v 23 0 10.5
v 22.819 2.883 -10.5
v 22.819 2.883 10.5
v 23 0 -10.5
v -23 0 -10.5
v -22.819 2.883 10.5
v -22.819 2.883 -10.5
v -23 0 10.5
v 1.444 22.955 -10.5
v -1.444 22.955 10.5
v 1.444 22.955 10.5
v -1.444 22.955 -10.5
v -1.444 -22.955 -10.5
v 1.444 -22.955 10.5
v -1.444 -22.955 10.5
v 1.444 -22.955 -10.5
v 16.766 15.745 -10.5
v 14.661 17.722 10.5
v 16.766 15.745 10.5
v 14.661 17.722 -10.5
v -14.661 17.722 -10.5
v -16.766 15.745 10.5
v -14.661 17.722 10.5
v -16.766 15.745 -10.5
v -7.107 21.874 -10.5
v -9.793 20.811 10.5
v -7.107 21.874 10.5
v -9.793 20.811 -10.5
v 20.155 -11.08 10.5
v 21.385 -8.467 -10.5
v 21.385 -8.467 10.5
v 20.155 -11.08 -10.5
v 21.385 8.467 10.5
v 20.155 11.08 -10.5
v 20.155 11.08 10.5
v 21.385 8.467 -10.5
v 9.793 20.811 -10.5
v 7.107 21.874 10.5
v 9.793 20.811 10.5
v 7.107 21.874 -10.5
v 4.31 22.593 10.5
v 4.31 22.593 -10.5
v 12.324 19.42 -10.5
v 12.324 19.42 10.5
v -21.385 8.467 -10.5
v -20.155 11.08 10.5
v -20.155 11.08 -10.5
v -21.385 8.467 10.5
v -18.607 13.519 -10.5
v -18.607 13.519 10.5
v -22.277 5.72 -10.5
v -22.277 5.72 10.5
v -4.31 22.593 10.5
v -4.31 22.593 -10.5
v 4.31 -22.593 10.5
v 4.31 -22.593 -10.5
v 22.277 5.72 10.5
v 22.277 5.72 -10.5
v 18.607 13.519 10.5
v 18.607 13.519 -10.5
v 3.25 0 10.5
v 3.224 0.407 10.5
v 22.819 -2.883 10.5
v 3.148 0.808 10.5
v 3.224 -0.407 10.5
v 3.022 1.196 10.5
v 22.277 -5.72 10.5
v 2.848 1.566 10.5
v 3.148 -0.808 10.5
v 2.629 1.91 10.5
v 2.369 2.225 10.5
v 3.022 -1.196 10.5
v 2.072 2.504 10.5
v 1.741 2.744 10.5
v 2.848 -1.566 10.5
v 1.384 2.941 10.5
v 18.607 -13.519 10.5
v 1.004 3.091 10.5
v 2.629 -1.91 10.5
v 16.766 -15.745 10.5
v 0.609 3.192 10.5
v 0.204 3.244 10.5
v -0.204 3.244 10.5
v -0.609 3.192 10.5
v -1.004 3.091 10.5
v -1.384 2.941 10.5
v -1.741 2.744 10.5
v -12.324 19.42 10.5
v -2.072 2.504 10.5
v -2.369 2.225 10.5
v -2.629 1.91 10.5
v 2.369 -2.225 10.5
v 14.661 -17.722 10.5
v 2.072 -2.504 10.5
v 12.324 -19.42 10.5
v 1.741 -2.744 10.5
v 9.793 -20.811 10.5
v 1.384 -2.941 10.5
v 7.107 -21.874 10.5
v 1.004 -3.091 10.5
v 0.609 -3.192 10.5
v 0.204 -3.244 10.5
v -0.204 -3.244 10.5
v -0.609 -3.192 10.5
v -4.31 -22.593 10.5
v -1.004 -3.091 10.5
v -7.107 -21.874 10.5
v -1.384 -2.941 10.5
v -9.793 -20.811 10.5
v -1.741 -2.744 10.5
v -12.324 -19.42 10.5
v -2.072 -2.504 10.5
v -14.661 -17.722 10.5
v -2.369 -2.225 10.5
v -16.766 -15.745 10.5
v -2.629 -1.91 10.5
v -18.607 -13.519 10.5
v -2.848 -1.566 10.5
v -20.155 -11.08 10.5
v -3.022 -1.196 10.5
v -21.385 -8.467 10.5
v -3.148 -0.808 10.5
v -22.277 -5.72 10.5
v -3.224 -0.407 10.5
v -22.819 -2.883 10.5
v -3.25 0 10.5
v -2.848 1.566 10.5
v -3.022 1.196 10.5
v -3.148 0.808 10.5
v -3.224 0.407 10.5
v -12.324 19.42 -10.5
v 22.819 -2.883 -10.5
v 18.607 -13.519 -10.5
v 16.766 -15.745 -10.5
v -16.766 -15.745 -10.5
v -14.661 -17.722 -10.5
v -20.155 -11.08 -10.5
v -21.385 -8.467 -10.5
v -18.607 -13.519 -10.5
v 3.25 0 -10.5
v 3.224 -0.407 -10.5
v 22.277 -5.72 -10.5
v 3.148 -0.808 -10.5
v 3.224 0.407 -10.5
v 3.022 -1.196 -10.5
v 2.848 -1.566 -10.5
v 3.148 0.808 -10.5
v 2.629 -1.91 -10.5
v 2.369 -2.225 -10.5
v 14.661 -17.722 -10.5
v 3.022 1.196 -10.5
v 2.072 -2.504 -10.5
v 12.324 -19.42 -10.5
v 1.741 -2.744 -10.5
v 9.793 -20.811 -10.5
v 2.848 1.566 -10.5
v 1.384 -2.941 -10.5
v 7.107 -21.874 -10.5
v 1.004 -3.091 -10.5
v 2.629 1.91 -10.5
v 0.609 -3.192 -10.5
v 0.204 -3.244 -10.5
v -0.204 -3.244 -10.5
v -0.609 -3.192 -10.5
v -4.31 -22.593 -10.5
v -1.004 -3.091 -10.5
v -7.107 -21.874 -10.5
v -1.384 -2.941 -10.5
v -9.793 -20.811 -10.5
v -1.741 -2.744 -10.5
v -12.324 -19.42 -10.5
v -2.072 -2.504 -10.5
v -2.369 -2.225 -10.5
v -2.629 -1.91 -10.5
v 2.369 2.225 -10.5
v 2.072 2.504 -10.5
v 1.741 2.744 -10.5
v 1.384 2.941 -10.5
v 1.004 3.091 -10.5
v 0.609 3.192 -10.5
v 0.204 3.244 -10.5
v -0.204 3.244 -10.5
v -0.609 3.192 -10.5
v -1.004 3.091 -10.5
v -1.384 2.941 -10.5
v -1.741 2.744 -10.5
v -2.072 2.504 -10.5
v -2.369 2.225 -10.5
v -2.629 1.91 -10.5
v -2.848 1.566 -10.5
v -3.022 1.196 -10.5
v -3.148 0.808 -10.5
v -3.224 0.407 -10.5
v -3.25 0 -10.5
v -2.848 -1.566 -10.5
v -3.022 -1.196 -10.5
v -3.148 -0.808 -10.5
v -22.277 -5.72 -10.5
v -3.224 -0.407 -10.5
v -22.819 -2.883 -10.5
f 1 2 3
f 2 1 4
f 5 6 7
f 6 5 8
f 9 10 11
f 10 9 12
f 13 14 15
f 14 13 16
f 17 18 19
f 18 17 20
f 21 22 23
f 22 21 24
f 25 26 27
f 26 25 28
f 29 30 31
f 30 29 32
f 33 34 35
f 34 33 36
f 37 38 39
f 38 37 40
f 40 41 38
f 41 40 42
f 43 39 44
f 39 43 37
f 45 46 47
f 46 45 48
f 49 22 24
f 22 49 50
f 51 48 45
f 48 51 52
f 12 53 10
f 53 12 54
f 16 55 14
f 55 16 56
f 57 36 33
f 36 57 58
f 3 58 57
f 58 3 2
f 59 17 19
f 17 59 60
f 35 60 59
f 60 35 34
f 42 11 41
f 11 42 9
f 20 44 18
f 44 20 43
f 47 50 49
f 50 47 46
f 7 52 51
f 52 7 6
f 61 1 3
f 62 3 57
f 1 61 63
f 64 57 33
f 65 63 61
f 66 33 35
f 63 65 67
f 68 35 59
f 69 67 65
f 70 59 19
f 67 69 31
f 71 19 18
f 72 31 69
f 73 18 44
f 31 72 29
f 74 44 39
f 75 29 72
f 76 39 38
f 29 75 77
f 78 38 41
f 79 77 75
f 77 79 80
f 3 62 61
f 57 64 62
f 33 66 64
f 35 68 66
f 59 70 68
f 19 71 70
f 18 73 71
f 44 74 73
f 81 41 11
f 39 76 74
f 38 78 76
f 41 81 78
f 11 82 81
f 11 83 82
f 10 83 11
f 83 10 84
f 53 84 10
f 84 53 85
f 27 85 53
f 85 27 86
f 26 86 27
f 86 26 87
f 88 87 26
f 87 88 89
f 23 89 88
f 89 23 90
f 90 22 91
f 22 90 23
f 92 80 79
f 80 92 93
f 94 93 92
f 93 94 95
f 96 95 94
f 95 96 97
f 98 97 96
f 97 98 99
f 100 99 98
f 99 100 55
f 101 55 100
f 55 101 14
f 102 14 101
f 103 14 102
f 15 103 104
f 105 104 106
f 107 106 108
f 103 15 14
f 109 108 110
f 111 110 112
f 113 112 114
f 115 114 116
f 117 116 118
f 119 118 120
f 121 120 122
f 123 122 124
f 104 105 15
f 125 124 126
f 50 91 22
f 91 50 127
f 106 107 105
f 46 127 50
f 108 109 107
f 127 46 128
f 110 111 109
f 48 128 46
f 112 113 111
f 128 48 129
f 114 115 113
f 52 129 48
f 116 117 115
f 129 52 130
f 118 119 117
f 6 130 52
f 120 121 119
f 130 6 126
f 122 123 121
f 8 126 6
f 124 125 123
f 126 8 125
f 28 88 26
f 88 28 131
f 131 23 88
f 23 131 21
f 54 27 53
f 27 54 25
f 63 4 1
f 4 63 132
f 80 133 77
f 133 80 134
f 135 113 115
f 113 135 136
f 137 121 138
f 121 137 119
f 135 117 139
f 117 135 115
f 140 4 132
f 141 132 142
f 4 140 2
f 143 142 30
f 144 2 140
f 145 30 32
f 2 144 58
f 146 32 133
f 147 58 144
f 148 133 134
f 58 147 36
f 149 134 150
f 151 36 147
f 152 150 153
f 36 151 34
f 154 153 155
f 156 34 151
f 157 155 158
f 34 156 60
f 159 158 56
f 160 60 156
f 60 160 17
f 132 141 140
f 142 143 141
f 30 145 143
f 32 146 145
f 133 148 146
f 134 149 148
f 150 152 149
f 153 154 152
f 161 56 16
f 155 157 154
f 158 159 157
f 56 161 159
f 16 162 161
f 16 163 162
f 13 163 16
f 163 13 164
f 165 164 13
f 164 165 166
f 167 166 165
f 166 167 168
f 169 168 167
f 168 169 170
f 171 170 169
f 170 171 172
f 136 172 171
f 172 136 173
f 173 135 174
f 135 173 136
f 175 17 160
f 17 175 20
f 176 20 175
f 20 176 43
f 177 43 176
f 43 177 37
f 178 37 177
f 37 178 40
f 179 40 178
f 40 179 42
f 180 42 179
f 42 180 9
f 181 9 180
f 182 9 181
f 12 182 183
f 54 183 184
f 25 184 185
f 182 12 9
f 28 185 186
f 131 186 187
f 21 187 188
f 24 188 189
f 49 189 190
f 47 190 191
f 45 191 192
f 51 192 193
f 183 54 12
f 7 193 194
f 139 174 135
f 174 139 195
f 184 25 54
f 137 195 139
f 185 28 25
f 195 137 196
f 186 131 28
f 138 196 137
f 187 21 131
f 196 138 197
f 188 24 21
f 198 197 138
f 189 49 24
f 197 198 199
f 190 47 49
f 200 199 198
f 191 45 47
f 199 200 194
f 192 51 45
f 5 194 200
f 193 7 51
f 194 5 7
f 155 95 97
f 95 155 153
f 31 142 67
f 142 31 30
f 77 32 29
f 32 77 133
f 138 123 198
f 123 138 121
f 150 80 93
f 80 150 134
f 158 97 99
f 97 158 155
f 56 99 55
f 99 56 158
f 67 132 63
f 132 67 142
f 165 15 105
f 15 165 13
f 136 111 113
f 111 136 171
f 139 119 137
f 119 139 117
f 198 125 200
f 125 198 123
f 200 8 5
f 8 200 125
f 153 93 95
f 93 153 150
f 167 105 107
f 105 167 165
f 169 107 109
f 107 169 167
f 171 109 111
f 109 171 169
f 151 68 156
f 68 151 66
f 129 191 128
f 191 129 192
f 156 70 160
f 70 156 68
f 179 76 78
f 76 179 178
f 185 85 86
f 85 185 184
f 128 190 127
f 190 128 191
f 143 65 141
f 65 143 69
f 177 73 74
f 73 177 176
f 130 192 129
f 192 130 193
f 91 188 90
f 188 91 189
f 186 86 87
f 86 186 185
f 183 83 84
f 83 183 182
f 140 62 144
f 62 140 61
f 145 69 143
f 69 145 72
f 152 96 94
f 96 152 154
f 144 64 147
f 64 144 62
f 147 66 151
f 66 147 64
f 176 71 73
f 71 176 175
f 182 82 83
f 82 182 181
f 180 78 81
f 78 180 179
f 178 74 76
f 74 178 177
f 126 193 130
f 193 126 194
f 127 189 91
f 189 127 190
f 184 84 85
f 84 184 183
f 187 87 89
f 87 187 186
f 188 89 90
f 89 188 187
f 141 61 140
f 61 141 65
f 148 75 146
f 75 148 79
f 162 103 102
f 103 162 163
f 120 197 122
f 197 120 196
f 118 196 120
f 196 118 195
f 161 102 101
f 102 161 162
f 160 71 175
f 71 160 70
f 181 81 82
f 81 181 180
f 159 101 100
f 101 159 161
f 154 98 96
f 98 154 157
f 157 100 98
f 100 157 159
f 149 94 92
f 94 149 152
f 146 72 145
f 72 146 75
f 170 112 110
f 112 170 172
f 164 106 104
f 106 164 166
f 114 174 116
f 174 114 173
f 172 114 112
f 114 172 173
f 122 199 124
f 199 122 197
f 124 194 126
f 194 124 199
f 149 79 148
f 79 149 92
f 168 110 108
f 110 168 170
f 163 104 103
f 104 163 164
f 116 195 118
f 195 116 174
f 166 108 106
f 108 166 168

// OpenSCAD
$fn = 50;


difference() {
	union() {
		translate(v = [0, 0, -10.5000000000]) {
			cylinder(h = 21, r = 23.0000000000);
		}
	}
	union() {
		translate(v = [0, 0, -100.0000000000]) {
			cylinder(h = 200, r = 3.2500000000);
		}
	}
}
